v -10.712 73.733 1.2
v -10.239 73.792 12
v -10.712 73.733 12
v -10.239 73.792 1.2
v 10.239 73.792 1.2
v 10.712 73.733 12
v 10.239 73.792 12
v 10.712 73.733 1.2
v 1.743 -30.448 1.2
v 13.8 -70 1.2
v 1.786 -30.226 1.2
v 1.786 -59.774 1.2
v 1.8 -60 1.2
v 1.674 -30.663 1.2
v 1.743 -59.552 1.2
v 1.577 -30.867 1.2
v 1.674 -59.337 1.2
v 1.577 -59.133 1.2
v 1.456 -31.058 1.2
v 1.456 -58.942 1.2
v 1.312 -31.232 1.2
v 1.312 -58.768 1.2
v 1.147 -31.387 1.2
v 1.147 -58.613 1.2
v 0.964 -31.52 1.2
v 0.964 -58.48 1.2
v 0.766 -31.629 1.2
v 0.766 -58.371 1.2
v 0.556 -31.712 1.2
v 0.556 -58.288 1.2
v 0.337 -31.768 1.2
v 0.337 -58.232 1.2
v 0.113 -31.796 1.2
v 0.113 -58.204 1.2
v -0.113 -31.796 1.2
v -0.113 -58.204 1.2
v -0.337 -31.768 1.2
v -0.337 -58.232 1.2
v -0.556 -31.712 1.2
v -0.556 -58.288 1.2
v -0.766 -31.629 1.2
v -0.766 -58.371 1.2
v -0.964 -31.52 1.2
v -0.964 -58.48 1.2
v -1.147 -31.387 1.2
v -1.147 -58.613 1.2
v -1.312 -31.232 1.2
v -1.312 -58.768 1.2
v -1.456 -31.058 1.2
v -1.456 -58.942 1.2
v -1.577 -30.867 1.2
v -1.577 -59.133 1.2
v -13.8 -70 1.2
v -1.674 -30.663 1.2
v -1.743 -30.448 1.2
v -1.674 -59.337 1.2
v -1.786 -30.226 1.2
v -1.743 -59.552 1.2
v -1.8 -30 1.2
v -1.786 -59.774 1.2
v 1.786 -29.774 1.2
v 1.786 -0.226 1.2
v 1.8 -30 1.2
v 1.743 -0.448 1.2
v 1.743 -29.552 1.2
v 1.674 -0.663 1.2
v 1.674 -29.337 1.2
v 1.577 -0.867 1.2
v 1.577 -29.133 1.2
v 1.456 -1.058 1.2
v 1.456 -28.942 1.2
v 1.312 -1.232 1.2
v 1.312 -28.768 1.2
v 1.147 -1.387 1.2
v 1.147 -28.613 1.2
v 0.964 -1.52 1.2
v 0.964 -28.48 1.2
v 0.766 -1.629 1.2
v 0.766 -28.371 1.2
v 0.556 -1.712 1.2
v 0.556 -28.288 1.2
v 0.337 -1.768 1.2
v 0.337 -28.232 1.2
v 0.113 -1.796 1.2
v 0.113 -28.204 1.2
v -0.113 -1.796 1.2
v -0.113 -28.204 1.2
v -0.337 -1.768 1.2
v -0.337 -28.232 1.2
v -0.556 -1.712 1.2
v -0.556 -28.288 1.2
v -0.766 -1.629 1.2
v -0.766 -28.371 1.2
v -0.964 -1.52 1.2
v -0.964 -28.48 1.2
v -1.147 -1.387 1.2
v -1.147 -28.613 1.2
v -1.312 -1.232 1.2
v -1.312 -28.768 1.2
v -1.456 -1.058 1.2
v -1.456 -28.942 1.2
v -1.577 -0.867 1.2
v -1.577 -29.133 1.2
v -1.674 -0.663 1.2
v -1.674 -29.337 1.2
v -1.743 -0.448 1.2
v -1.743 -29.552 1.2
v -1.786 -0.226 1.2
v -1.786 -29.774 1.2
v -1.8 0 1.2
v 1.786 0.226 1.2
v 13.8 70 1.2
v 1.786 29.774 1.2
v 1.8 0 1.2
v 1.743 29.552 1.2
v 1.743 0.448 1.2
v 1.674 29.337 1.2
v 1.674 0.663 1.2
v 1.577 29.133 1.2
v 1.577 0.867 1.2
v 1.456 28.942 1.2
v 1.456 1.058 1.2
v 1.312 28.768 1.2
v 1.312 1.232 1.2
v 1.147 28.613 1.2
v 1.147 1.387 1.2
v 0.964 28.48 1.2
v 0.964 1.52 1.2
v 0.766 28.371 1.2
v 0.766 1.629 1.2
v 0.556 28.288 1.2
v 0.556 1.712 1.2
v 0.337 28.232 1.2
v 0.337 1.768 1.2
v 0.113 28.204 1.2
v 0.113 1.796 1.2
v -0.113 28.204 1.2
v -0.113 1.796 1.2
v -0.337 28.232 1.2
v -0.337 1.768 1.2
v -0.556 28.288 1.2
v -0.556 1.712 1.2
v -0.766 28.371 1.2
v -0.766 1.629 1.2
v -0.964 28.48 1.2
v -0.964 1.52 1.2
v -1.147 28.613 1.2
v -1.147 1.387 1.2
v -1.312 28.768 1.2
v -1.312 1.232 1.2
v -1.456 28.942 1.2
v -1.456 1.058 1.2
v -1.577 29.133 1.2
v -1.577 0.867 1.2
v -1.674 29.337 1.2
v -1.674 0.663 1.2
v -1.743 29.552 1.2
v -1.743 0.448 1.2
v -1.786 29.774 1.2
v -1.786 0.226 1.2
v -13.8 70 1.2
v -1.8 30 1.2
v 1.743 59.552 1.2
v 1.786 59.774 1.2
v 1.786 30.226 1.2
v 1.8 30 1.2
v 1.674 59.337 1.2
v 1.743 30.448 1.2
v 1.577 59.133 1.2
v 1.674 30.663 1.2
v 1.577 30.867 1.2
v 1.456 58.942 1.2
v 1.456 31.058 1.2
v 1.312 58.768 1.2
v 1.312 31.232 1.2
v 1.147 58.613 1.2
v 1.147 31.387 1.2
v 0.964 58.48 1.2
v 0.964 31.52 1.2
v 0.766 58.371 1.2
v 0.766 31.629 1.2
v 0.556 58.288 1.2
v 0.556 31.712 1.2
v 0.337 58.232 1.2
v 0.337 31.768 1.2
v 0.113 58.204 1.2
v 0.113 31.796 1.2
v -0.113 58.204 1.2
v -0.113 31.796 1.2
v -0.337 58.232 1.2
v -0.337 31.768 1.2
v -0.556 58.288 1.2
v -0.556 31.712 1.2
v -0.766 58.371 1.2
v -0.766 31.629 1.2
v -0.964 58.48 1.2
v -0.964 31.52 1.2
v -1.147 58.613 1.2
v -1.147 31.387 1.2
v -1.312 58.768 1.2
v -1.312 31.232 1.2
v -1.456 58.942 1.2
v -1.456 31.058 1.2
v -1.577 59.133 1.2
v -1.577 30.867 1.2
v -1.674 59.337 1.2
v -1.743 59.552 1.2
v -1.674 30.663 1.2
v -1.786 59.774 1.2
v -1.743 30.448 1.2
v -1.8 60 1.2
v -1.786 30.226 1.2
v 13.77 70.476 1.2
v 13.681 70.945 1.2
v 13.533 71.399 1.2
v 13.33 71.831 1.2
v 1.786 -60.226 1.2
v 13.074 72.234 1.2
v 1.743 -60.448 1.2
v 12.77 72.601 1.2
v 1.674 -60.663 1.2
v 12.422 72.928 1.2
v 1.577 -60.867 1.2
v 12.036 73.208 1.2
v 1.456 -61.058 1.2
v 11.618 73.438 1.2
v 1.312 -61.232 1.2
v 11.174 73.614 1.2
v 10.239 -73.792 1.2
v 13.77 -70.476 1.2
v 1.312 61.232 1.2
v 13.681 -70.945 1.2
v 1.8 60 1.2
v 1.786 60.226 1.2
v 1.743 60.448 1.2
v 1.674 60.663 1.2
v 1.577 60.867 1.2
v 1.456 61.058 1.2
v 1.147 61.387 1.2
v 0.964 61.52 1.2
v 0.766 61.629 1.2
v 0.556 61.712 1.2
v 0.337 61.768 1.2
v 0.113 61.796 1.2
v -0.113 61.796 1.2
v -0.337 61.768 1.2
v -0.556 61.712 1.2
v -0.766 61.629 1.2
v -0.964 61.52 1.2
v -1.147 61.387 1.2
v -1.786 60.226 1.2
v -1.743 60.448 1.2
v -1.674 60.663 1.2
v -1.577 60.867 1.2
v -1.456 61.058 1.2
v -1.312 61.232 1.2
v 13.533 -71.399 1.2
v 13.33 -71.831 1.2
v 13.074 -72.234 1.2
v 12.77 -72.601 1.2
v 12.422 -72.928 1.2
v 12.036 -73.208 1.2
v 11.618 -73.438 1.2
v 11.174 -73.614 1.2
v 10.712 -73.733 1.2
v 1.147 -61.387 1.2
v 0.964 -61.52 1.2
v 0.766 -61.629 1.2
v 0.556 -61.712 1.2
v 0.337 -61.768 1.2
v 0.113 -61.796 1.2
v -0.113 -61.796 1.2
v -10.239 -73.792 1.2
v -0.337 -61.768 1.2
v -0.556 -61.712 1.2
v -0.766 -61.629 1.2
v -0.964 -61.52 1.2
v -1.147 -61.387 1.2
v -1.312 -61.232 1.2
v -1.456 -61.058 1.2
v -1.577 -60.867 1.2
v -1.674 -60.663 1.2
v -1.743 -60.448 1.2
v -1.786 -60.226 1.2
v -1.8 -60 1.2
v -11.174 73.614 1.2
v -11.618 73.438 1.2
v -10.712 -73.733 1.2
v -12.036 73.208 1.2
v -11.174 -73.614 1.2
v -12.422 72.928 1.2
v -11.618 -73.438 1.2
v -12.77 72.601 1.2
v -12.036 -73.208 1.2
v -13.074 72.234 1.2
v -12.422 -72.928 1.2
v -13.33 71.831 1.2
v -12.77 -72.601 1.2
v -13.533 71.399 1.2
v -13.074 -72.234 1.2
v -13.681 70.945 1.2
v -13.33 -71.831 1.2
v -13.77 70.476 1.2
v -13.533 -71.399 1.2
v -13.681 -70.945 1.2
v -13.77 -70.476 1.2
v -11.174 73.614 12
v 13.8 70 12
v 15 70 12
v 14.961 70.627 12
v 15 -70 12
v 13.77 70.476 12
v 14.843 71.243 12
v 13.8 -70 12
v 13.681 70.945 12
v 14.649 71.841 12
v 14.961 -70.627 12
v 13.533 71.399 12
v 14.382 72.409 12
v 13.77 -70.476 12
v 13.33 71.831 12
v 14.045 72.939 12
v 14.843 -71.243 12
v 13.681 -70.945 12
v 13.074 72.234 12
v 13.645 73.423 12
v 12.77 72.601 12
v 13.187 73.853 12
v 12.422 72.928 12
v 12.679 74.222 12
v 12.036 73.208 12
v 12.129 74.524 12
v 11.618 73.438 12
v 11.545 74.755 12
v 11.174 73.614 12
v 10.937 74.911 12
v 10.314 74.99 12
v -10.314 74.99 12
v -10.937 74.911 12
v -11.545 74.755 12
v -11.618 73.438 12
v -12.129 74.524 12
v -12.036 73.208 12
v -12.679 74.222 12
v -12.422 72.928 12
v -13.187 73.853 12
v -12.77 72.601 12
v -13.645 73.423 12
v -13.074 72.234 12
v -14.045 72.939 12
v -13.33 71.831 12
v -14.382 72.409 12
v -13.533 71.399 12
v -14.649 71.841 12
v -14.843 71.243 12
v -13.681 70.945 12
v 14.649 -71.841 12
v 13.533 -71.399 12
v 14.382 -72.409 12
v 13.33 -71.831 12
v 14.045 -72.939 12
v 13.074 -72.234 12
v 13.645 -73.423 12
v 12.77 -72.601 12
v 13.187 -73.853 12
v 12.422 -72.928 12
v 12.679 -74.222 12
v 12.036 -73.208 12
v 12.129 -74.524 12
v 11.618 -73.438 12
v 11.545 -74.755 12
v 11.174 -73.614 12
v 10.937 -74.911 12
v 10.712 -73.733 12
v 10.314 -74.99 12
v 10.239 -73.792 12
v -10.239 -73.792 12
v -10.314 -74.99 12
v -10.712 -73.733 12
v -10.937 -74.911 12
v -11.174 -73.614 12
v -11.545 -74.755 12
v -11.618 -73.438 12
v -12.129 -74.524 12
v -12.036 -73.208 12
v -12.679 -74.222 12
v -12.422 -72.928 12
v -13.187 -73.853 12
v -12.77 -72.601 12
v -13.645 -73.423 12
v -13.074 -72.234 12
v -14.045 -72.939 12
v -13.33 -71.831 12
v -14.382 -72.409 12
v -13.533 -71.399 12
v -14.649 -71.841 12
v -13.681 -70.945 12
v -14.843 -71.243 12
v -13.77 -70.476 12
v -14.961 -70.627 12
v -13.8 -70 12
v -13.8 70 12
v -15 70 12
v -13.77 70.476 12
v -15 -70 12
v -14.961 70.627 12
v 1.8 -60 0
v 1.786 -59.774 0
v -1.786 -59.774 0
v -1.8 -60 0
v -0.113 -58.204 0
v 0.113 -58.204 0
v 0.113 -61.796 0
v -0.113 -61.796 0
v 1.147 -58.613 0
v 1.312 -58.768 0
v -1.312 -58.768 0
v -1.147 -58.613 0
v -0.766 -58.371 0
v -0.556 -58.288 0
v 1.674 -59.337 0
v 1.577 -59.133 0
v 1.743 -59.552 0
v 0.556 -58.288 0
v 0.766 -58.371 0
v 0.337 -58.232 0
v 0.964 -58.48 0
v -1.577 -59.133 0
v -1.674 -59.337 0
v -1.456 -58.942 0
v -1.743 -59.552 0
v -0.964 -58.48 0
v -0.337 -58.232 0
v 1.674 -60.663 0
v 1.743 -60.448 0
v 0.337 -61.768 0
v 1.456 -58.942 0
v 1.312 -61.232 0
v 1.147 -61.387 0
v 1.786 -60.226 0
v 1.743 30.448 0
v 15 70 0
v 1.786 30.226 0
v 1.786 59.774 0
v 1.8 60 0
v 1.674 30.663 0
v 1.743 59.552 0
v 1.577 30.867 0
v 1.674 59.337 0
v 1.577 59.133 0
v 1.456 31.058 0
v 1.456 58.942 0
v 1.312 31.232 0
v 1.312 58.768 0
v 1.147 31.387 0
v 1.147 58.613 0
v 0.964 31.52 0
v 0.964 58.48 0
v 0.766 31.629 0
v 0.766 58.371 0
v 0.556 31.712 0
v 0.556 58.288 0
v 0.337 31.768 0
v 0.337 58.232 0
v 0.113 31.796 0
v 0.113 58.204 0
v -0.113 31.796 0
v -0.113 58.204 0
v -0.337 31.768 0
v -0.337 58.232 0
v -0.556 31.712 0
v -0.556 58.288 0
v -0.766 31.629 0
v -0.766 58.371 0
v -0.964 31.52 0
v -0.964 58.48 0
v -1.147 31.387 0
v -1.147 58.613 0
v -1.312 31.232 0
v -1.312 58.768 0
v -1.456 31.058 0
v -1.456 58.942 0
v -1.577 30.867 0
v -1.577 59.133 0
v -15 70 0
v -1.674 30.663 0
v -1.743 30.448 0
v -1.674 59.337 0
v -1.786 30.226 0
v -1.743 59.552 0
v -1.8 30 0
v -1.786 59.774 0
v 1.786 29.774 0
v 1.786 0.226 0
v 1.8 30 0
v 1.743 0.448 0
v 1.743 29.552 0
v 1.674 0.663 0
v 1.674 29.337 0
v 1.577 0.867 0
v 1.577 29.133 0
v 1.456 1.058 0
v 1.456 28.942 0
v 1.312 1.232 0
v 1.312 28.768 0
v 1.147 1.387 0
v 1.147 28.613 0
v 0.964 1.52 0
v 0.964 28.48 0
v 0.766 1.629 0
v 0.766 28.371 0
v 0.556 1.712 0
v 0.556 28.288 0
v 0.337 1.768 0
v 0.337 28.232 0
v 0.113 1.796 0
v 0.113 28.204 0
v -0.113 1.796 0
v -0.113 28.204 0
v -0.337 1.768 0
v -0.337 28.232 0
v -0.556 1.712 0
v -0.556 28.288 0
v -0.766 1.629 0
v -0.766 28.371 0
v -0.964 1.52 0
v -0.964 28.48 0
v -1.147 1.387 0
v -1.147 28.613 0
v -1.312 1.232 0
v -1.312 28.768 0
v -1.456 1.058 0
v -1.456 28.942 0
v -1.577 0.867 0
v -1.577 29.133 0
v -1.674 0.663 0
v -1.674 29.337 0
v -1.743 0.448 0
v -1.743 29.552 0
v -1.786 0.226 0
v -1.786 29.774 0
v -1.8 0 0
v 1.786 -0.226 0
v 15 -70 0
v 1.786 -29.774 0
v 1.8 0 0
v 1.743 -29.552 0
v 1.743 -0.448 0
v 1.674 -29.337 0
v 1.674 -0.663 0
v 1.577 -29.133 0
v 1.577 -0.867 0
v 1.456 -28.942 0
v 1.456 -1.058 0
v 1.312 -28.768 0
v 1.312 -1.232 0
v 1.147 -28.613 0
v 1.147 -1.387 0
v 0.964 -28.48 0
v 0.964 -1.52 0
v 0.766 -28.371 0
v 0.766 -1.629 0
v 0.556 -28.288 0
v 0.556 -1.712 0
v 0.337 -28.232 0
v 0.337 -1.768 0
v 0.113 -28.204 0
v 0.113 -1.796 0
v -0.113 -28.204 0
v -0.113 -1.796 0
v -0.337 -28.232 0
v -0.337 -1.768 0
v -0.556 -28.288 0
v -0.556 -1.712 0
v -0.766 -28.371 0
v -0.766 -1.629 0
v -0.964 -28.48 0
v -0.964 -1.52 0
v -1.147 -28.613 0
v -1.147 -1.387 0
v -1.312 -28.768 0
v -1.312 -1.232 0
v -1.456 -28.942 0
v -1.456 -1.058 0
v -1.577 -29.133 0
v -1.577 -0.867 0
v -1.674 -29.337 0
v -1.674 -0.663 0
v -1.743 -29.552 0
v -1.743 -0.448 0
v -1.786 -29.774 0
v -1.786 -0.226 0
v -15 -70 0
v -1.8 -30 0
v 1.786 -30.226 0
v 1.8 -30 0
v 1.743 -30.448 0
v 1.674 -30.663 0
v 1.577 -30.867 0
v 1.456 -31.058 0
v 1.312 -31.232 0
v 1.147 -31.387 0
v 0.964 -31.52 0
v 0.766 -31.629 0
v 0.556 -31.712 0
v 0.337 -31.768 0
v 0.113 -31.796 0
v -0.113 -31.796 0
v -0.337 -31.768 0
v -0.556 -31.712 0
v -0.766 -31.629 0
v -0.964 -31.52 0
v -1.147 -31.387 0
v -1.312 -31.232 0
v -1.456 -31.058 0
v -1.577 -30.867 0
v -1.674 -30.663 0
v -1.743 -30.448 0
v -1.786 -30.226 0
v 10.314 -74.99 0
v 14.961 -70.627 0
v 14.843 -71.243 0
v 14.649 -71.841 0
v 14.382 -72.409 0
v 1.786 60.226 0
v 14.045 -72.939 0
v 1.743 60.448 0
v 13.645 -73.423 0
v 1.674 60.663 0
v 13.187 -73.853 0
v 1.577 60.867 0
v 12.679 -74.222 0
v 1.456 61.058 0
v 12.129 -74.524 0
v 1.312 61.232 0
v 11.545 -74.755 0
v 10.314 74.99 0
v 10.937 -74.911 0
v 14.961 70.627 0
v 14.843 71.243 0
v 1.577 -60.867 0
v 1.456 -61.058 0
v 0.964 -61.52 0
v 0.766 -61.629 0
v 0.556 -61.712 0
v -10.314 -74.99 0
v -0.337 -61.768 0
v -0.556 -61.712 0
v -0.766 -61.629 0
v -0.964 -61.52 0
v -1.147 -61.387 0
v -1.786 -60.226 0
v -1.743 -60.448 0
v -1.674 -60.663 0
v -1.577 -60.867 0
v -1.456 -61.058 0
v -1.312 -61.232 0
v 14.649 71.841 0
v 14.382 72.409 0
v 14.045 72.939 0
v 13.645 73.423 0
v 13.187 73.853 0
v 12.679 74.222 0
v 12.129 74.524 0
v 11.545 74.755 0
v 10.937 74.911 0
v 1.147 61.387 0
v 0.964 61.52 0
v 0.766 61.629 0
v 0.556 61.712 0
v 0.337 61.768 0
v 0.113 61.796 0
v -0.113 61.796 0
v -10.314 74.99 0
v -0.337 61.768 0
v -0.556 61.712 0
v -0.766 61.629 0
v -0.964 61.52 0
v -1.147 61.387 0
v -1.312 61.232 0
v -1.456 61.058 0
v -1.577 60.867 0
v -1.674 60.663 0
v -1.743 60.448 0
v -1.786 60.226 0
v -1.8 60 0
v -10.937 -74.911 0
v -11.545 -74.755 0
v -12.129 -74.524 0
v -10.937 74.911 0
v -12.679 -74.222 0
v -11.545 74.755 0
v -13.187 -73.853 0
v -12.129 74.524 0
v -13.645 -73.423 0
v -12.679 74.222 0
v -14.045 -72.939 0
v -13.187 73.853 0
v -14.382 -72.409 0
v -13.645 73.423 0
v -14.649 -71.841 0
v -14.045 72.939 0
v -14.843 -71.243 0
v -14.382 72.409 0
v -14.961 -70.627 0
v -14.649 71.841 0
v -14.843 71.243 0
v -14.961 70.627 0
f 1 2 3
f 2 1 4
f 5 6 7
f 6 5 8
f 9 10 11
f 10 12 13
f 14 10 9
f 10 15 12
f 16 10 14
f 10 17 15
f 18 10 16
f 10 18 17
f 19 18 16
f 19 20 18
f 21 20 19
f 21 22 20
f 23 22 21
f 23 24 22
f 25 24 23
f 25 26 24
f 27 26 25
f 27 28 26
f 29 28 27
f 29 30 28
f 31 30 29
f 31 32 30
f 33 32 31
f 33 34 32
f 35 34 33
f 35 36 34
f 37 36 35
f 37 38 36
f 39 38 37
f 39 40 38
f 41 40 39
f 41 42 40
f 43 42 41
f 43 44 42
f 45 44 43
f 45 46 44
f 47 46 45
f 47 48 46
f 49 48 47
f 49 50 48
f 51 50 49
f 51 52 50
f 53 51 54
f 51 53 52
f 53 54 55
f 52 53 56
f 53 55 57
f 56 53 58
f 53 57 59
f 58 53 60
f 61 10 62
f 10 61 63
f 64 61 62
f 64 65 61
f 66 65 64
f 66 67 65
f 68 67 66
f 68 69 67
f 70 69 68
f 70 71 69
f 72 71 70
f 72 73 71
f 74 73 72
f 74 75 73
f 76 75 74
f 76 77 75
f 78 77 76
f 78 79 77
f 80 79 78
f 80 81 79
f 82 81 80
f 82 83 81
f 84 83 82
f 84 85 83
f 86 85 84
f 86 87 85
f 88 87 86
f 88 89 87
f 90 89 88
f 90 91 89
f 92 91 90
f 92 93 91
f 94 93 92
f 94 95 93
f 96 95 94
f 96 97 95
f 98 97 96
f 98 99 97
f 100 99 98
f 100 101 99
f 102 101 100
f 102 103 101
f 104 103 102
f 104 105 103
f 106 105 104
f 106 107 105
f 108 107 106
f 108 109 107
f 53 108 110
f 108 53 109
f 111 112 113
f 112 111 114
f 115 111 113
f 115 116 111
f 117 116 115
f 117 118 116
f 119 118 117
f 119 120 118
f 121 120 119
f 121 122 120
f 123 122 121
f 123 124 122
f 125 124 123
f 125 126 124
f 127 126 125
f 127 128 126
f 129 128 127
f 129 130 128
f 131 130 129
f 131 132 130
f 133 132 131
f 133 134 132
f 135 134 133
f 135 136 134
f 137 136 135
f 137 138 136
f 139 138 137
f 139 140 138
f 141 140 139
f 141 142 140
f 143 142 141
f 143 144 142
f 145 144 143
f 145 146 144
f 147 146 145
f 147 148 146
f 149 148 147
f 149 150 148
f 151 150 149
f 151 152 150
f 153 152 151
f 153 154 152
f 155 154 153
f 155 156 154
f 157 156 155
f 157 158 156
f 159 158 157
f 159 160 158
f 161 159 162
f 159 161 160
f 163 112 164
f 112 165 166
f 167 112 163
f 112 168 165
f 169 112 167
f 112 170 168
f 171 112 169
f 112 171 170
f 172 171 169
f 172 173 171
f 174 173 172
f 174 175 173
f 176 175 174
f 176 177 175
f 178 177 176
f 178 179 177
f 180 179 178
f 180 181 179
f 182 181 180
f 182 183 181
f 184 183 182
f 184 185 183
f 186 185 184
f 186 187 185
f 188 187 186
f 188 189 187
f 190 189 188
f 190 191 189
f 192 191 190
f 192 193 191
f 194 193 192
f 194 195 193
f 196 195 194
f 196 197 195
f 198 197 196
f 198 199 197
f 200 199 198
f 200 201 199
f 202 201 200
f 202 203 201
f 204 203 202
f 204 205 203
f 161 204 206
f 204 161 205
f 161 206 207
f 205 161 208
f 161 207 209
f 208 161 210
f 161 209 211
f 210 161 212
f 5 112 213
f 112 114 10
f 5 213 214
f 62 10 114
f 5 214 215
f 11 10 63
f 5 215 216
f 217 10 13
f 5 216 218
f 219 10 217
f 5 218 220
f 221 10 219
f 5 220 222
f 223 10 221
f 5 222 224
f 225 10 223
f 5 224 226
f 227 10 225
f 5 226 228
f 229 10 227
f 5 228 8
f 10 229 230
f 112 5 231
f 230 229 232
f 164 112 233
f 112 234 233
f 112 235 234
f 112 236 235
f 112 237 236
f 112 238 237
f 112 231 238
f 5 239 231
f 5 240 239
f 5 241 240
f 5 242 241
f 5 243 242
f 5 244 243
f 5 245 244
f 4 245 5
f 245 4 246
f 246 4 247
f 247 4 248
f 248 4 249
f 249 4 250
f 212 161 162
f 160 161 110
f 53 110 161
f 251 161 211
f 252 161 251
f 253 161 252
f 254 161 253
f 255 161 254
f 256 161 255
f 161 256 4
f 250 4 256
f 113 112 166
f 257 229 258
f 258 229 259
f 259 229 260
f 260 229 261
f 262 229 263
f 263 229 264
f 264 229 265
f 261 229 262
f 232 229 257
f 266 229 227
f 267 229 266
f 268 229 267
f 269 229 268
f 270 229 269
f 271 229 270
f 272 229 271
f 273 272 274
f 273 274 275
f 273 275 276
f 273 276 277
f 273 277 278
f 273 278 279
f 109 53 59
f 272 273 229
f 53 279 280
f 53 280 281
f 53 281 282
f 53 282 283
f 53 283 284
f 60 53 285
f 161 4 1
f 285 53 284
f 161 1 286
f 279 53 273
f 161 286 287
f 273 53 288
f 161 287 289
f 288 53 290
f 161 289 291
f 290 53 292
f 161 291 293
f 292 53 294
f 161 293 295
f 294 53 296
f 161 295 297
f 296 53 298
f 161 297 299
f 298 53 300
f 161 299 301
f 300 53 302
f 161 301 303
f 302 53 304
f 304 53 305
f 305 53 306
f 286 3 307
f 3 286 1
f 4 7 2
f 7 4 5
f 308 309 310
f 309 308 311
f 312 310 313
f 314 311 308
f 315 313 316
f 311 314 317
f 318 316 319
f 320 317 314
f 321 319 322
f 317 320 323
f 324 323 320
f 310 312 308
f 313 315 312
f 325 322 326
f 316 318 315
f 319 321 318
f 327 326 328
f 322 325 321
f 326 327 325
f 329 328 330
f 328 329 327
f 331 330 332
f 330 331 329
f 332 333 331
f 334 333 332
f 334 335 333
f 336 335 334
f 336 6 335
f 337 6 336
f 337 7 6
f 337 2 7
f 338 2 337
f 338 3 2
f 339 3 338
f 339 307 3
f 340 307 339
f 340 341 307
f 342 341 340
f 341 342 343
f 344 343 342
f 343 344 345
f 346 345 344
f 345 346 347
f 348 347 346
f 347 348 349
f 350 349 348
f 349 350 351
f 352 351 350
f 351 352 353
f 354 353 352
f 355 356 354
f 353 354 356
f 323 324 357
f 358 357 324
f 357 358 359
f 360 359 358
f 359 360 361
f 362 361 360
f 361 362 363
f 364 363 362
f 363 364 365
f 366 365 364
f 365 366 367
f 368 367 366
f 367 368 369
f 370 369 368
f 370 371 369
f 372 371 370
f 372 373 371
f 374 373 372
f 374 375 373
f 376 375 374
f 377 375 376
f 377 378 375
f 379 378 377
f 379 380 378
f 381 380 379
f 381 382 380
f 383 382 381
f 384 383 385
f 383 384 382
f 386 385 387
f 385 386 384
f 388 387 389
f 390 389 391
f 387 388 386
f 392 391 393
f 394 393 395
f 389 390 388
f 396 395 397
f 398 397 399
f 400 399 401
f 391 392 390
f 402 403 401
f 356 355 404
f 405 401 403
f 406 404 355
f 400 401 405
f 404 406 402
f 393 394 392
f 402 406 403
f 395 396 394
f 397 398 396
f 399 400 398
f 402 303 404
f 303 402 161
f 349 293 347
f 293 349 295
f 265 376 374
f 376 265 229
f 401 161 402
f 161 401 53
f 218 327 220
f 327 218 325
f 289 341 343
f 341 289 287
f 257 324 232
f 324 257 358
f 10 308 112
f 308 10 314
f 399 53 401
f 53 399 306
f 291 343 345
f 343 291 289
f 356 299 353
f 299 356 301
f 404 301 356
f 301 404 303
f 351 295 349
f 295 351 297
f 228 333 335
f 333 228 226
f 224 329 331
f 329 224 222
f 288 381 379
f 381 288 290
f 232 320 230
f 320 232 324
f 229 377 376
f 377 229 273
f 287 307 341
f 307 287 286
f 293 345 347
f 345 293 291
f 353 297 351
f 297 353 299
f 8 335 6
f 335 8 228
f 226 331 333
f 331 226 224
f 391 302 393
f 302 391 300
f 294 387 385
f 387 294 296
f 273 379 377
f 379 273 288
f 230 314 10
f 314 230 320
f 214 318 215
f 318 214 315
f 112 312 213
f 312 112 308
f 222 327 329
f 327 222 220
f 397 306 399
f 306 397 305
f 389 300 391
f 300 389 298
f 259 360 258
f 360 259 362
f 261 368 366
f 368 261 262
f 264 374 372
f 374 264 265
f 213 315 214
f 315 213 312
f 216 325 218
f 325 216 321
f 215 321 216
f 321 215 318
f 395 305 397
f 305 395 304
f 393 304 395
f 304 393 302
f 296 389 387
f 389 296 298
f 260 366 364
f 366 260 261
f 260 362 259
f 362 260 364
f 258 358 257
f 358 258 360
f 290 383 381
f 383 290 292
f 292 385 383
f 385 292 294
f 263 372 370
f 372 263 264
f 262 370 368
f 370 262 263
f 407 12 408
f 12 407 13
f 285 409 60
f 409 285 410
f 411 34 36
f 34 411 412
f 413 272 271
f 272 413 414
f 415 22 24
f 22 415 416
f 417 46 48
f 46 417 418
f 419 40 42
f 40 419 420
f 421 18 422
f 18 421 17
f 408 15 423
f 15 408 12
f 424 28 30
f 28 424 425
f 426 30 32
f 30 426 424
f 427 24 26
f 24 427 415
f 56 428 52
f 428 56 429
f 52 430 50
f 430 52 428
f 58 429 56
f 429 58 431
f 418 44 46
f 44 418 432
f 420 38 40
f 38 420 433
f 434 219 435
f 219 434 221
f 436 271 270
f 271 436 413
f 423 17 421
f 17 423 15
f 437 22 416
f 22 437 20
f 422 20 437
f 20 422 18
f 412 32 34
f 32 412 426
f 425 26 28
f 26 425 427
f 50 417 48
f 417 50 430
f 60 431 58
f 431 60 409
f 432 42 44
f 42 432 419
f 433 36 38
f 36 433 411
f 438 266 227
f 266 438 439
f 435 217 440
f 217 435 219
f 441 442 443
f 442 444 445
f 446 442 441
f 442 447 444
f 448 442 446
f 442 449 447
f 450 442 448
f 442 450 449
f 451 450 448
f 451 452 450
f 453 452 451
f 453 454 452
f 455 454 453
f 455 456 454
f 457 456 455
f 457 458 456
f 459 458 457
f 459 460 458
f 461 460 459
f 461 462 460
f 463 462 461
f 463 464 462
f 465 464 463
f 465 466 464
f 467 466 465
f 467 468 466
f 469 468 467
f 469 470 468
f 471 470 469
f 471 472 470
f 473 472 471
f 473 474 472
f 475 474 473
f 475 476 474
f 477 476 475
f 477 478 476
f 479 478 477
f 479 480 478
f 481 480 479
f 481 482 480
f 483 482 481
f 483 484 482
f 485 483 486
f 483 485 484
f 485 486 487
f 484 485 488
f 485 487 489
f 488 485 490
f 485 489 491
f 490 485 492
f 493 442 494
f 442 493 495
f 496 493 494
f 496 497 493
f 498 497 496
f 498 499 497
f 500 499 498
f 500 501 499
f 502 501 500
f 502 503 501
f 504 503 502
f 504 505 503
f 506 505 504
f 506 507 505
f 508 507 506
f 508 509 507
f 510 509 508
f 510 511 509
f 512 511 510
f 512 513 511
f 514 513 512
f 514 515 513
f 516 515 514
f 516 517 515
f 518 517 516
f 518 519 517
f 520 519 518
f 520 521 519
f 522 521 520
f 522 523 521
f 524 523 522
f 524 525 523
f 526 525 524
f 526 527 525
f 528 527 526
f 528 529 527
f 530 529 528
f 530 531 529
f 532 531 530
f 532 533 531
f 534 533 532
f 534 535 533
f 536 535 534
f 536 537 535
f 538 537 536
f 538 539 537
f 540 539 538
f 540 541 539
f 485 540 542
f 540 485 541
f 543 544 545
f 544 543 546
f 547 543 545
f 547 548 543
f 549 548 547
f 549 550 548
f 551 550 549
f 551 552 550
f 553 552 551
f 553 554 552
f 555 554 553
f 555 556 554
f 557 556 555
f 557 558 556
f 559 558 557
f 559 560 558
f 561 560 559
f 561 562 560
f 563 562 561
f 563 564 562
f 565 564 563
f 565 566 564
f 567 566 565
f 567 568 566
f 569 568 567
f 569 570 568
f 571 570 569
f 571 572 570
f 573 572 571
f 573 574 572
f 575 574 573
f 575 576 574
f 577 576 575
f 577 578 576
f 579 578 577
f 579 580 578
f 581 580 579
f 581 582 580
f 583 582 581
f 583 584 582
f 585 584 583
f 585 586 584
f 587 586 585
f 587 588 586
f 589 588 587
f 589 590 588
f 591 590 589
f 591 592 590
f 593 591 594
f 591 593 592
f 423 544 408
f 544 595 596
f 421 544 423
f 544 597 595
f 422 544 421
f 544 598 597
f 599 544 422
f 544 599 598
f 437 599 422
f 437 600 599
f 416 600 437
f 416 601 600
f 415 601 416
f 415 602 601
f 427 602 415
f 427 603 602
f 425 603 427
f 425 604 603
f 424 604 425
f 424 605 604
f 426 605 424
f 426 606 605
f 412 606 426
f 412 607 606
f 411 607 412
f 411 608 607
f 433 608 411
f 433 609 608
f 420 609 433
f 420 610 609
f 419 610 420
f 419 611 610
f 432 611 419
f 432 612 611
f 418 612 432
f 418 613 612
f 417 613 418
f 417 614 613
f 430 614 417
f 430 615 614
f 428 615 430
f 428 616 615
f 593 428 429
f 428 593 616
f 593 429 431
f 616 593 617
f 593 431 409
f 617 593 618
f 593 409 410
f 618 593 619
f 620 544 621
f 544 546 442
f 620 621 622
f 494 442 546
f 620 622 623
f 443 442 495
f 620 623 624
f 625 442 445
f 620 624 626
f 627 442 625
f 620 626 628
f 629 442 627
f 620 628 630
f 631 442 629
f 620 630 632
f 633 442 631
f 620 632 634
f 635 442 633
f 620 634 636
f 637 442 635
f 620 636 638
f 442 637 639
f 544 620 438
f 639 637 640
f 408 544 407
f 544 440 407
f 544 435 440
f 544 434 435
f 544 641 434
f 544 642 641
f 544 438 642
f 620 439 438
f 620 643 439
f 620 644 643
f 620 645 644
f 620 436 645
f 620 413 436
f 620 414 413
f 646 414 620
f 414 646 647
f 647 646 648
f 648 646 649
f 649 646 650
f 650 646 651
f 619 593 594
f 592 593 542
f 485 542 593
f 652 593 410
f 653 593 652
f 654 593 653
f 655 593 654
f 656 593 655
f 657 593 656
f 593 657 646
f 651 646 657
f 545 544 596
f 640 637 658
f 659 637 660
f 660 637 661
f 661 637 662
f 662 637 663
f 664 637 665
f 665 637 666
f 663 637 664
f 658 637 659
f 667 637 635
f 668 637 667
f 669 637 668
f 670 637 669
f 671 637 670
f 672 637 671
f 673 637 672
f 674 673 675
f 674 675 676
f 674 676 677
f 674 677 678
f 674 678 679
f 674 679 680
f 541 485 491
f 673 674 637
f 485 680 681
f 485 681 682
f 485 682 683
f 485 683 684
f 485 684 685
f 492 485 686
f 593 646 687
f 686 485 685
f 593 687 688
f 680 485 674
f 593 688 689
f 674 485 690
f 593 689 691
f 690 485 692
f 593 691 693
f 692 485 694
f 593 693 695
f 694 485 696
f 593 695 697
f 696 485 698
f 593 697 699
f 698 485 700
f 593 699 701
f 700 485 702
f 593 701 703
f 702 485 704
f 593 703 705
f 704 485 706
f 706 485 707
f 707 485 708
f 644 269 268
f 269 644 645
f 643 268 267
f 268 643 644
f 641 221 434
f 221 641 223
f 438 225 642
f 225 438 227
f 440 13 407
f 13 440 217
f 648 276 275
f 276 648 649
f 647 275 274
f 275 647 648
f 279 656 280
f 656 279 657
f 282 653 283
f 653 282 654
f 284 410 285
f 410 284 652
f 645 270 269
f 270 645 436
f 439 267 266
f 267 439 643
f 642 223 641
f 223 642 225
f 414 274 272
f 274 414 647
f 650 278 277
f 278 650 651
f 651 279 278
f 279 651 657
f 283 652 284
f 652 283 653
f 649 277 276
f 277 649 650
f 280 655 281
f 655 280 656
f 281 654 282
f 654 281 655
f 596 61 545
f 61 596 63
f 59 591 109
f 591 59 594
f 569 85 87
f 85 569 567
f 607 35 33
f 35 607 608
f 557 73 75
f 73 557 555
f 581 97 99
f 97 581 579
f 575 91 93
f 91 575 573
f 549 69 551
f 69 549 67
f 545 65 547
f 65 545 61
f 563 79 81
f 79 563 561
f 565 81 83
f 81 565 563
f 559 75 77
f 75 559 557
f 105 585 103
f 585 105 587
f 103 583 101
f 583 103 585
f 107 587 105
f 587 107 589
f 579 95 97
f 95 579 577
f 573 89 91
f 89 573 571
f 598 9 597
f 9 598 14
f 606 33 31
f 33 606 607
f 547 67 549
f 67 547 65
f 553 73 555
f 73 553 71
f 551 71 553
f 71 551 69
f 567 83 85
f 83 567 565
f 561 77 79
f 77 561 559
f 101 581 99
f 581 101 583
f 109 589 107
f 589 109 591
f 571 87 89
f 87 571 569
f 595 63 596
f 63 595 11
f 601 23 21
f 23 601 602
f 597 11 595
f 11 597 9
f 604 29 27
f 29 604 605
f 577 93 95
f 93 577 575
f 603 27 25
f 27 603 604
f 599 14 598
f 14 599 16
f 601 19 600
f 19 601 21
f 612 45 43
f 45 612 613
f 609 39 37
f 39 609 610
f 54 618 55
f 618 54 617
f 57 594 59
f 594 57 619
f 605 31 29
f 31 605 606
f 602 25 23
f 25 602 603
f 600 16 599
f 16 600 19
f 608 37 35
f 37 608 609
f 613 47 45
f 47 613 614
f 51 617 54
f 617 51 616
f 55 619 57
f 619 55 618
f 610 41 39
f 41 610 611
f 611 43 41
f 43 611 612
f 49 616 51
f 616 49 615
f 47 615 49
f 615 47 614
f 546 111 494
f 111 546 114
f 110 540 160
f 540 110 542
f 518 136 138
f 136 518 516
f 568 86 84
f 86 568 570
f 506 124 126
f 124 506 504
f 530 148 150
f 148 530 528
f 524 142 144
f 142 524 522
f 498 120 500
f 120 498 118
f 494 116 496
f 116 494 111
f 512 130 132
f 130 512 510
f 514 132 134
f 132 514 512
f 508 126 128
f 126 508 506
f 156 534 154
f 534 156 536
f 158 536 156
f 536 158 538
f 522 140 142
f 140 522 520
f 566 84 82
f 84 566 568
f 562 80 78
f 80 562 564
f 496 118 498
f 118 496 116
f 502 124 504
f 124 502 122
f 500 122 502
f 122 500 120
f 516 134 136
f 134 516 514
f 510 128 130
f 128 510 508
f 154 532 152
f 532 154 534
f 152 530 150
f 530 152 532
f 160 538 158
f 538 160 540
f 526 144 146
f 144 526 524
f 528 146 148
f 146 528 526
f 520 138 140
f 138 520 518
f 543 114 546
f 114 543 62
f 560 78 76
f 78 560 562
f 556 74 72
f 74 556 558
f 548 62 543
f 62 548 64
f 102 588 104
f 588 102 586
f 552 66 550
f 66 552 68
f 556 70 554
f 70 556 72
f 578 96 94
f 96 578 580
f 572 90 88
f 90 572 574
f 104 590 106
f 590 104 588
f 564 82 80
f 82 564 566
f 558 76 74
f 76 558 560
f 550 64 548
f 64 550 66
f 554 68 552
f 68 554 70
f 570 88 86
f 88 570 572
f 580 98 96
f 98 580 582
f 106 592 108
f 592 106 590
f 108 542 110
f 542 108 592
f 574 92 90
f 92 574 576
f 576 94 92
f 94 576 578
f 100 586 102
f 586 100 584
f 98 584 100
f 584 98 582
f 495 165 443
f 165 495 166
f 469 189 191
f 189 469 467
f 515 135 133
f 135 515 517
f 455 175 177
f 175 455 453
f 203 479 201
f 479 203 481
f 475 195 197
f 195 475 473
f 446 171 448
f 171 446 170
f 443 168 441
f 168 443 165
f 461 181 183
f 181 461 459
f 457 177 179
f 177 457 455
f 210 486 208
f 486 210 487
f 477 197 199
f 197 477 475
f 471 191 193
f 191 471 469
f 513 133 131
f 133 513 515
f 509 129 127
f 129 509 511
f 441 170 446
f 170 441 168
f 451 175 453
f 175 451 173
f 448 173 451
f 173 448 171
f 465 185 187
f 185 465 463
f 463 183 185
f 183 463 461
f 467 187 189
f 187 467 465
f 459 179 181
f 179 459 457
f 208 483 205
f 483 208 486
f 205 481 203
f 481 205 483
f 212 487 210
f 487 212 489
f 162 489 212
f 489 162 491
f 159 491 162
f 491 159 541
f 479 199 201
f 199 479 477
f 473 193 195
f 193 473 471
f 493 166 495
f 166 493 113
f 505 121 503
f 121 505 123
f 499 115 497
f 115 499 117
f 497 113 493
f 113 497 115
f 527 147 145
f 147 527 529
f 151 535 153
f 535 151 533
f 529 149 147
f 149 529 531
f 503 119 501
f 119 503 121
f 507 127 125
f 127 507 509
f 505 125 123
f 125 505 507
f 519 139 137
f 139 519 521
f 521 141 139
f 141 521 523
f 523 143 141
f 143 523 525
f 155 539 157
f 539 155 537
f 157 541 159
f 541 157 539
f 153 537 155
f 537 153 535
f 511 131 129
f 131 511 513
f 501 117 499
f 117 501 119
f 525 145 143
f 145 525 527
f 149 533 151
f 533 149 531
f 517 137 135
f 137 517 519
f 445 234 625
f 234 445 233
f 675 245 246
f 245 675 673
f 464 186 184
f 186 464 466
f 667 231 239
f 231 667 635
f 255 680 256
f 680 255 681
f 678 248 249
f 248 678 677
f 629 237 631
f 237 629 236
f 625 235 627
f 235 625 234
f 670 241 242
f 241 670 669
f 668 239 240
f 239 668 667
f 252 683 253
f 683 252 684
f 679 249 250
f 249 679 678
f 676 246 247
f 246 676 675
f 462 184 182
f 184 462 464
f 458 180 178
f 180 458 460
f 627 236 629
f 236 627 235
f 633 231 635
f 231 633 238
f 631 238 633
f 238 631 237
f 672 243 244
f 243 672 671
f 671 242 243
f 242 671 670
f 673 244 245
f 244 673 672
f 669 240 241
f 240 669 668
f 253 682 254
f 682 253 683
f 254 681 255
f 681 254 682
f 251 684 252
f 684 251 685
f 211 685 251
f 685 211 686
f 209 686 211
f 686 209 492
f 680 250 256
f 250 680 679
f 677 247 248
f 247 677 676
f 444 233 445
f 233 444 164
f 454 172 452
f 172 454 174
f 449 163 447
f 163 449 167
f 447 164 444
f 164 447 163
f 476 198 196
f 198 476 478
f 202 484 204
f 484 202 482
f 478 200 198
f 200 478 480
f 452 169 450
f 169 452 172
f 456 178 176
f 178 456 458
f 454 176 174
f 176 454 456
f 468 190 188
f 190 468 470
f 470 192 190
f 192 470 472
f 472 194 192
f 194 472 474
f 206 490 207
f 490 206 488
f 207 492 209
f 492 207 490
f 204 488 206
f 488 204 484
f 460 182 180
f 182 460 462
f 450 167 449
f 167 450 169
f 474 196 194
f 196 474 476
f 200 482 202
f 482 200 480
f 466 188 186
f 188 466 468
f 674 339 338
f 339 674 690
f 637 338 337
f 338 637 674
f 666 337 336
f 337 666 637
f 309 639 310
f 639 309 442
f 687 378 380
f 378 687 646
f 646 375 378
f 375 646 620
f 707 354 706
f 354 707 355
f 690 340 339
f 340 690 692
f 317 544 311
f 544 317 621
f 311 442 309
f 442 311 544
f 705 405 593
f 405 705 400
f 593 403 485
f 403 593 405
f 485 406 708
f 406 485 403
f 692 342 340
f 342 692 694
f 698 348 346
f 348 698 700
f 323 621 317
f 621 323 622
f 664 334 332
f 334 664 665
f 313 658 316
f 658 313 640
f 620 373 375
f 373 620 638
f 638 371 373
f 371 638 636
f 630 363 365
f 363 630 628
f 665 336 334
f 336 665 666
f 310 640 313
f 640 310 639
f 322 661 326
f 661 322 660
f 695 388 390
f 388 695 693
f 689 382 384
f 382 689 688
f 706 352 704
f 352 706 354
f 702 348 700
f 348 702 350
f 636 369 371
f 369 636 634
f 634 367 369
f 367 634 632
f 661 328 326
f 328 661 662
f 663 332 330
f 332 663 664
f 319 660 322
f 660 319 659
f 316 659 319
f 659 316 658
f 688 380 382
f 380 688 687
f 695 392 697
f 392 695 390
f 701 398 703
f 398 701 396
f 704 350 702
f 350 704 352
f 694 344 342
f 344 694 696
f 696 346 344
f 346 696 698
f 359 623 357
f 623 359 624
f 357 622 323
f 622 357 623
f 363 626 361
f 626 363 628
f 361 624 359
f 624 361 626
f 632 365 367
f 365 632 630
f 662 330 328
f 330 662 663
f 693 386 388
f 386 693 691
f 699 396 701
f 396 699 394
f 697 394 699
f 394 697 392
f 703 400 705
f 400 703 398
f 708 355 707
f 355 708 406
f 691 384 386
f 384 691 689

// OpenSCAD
$fn = 50;


difference() {
	union() {
		hull() {
			translate(v = [-10.0000000000, 70.0000000000, 0]) {
				cylinder(h = 12, r = 5);
			}
			translate(v = [10.0000000000, 70.0000000000, 0]) {
				cylinder(h = 12, r = 5);
			}
			translate(v = [-10.0000000000, -70.0000000000, 0]) {
				cylinder(h = 12, r = 5);
			}
			translate(v = [10.0000000000, -70.0000000000, 0]) {
				cylinder(h = 12, r = 5);
			}
		}
	}
	union() {
		translate(v = [0, 0, 1.2000000000]) {
			hull() {
				translate(v = [-10.0000000000, 70.0000000000, 0]) {
					cylinder(h = 10.8000000000, r = 3.8000000000);
				}
				translate(v = [10.0000000000, 70.0000000000, 0]) {
					cylinder(h = 10.8000000000, r = 3.8000000000);
				}
				translate(v = [-10.0000000000, -70.0000000000, 0]) {
					cylinder(h = 10.8000000000, r = 3.8000000000);
				}
				translate(v = [10.0000000000, -70.0000000000, 0]) {
					cylinder(h = 10.8000000000, r = 3.8000000000);
				}
			}
		}
		#translate(v = [0.0000000000, -60.0000000000, 0]) {
			cylinder(h = 1.2000000000, r = 1.8000000000);
		}
		#translate(v = [0.0000000000, -30.0000000000, 0]) {
			cylinder(h = 1.2000000000, r = 1.8000000000);
		}
		#cylinder(h = 1.2000000000, r = 1.8000000000);
		#translate(v = [0.0000000000, 30.0000000000, 0]) {
			cylinder(h = 1.2000000000, r = 1.8000000000);
		}
		#translate(v = [0.0000000000, 60.0000000000, 0]) {
			cylinder(h = 1.2000000000, r = 1.8000000000);
		}
	}
}
